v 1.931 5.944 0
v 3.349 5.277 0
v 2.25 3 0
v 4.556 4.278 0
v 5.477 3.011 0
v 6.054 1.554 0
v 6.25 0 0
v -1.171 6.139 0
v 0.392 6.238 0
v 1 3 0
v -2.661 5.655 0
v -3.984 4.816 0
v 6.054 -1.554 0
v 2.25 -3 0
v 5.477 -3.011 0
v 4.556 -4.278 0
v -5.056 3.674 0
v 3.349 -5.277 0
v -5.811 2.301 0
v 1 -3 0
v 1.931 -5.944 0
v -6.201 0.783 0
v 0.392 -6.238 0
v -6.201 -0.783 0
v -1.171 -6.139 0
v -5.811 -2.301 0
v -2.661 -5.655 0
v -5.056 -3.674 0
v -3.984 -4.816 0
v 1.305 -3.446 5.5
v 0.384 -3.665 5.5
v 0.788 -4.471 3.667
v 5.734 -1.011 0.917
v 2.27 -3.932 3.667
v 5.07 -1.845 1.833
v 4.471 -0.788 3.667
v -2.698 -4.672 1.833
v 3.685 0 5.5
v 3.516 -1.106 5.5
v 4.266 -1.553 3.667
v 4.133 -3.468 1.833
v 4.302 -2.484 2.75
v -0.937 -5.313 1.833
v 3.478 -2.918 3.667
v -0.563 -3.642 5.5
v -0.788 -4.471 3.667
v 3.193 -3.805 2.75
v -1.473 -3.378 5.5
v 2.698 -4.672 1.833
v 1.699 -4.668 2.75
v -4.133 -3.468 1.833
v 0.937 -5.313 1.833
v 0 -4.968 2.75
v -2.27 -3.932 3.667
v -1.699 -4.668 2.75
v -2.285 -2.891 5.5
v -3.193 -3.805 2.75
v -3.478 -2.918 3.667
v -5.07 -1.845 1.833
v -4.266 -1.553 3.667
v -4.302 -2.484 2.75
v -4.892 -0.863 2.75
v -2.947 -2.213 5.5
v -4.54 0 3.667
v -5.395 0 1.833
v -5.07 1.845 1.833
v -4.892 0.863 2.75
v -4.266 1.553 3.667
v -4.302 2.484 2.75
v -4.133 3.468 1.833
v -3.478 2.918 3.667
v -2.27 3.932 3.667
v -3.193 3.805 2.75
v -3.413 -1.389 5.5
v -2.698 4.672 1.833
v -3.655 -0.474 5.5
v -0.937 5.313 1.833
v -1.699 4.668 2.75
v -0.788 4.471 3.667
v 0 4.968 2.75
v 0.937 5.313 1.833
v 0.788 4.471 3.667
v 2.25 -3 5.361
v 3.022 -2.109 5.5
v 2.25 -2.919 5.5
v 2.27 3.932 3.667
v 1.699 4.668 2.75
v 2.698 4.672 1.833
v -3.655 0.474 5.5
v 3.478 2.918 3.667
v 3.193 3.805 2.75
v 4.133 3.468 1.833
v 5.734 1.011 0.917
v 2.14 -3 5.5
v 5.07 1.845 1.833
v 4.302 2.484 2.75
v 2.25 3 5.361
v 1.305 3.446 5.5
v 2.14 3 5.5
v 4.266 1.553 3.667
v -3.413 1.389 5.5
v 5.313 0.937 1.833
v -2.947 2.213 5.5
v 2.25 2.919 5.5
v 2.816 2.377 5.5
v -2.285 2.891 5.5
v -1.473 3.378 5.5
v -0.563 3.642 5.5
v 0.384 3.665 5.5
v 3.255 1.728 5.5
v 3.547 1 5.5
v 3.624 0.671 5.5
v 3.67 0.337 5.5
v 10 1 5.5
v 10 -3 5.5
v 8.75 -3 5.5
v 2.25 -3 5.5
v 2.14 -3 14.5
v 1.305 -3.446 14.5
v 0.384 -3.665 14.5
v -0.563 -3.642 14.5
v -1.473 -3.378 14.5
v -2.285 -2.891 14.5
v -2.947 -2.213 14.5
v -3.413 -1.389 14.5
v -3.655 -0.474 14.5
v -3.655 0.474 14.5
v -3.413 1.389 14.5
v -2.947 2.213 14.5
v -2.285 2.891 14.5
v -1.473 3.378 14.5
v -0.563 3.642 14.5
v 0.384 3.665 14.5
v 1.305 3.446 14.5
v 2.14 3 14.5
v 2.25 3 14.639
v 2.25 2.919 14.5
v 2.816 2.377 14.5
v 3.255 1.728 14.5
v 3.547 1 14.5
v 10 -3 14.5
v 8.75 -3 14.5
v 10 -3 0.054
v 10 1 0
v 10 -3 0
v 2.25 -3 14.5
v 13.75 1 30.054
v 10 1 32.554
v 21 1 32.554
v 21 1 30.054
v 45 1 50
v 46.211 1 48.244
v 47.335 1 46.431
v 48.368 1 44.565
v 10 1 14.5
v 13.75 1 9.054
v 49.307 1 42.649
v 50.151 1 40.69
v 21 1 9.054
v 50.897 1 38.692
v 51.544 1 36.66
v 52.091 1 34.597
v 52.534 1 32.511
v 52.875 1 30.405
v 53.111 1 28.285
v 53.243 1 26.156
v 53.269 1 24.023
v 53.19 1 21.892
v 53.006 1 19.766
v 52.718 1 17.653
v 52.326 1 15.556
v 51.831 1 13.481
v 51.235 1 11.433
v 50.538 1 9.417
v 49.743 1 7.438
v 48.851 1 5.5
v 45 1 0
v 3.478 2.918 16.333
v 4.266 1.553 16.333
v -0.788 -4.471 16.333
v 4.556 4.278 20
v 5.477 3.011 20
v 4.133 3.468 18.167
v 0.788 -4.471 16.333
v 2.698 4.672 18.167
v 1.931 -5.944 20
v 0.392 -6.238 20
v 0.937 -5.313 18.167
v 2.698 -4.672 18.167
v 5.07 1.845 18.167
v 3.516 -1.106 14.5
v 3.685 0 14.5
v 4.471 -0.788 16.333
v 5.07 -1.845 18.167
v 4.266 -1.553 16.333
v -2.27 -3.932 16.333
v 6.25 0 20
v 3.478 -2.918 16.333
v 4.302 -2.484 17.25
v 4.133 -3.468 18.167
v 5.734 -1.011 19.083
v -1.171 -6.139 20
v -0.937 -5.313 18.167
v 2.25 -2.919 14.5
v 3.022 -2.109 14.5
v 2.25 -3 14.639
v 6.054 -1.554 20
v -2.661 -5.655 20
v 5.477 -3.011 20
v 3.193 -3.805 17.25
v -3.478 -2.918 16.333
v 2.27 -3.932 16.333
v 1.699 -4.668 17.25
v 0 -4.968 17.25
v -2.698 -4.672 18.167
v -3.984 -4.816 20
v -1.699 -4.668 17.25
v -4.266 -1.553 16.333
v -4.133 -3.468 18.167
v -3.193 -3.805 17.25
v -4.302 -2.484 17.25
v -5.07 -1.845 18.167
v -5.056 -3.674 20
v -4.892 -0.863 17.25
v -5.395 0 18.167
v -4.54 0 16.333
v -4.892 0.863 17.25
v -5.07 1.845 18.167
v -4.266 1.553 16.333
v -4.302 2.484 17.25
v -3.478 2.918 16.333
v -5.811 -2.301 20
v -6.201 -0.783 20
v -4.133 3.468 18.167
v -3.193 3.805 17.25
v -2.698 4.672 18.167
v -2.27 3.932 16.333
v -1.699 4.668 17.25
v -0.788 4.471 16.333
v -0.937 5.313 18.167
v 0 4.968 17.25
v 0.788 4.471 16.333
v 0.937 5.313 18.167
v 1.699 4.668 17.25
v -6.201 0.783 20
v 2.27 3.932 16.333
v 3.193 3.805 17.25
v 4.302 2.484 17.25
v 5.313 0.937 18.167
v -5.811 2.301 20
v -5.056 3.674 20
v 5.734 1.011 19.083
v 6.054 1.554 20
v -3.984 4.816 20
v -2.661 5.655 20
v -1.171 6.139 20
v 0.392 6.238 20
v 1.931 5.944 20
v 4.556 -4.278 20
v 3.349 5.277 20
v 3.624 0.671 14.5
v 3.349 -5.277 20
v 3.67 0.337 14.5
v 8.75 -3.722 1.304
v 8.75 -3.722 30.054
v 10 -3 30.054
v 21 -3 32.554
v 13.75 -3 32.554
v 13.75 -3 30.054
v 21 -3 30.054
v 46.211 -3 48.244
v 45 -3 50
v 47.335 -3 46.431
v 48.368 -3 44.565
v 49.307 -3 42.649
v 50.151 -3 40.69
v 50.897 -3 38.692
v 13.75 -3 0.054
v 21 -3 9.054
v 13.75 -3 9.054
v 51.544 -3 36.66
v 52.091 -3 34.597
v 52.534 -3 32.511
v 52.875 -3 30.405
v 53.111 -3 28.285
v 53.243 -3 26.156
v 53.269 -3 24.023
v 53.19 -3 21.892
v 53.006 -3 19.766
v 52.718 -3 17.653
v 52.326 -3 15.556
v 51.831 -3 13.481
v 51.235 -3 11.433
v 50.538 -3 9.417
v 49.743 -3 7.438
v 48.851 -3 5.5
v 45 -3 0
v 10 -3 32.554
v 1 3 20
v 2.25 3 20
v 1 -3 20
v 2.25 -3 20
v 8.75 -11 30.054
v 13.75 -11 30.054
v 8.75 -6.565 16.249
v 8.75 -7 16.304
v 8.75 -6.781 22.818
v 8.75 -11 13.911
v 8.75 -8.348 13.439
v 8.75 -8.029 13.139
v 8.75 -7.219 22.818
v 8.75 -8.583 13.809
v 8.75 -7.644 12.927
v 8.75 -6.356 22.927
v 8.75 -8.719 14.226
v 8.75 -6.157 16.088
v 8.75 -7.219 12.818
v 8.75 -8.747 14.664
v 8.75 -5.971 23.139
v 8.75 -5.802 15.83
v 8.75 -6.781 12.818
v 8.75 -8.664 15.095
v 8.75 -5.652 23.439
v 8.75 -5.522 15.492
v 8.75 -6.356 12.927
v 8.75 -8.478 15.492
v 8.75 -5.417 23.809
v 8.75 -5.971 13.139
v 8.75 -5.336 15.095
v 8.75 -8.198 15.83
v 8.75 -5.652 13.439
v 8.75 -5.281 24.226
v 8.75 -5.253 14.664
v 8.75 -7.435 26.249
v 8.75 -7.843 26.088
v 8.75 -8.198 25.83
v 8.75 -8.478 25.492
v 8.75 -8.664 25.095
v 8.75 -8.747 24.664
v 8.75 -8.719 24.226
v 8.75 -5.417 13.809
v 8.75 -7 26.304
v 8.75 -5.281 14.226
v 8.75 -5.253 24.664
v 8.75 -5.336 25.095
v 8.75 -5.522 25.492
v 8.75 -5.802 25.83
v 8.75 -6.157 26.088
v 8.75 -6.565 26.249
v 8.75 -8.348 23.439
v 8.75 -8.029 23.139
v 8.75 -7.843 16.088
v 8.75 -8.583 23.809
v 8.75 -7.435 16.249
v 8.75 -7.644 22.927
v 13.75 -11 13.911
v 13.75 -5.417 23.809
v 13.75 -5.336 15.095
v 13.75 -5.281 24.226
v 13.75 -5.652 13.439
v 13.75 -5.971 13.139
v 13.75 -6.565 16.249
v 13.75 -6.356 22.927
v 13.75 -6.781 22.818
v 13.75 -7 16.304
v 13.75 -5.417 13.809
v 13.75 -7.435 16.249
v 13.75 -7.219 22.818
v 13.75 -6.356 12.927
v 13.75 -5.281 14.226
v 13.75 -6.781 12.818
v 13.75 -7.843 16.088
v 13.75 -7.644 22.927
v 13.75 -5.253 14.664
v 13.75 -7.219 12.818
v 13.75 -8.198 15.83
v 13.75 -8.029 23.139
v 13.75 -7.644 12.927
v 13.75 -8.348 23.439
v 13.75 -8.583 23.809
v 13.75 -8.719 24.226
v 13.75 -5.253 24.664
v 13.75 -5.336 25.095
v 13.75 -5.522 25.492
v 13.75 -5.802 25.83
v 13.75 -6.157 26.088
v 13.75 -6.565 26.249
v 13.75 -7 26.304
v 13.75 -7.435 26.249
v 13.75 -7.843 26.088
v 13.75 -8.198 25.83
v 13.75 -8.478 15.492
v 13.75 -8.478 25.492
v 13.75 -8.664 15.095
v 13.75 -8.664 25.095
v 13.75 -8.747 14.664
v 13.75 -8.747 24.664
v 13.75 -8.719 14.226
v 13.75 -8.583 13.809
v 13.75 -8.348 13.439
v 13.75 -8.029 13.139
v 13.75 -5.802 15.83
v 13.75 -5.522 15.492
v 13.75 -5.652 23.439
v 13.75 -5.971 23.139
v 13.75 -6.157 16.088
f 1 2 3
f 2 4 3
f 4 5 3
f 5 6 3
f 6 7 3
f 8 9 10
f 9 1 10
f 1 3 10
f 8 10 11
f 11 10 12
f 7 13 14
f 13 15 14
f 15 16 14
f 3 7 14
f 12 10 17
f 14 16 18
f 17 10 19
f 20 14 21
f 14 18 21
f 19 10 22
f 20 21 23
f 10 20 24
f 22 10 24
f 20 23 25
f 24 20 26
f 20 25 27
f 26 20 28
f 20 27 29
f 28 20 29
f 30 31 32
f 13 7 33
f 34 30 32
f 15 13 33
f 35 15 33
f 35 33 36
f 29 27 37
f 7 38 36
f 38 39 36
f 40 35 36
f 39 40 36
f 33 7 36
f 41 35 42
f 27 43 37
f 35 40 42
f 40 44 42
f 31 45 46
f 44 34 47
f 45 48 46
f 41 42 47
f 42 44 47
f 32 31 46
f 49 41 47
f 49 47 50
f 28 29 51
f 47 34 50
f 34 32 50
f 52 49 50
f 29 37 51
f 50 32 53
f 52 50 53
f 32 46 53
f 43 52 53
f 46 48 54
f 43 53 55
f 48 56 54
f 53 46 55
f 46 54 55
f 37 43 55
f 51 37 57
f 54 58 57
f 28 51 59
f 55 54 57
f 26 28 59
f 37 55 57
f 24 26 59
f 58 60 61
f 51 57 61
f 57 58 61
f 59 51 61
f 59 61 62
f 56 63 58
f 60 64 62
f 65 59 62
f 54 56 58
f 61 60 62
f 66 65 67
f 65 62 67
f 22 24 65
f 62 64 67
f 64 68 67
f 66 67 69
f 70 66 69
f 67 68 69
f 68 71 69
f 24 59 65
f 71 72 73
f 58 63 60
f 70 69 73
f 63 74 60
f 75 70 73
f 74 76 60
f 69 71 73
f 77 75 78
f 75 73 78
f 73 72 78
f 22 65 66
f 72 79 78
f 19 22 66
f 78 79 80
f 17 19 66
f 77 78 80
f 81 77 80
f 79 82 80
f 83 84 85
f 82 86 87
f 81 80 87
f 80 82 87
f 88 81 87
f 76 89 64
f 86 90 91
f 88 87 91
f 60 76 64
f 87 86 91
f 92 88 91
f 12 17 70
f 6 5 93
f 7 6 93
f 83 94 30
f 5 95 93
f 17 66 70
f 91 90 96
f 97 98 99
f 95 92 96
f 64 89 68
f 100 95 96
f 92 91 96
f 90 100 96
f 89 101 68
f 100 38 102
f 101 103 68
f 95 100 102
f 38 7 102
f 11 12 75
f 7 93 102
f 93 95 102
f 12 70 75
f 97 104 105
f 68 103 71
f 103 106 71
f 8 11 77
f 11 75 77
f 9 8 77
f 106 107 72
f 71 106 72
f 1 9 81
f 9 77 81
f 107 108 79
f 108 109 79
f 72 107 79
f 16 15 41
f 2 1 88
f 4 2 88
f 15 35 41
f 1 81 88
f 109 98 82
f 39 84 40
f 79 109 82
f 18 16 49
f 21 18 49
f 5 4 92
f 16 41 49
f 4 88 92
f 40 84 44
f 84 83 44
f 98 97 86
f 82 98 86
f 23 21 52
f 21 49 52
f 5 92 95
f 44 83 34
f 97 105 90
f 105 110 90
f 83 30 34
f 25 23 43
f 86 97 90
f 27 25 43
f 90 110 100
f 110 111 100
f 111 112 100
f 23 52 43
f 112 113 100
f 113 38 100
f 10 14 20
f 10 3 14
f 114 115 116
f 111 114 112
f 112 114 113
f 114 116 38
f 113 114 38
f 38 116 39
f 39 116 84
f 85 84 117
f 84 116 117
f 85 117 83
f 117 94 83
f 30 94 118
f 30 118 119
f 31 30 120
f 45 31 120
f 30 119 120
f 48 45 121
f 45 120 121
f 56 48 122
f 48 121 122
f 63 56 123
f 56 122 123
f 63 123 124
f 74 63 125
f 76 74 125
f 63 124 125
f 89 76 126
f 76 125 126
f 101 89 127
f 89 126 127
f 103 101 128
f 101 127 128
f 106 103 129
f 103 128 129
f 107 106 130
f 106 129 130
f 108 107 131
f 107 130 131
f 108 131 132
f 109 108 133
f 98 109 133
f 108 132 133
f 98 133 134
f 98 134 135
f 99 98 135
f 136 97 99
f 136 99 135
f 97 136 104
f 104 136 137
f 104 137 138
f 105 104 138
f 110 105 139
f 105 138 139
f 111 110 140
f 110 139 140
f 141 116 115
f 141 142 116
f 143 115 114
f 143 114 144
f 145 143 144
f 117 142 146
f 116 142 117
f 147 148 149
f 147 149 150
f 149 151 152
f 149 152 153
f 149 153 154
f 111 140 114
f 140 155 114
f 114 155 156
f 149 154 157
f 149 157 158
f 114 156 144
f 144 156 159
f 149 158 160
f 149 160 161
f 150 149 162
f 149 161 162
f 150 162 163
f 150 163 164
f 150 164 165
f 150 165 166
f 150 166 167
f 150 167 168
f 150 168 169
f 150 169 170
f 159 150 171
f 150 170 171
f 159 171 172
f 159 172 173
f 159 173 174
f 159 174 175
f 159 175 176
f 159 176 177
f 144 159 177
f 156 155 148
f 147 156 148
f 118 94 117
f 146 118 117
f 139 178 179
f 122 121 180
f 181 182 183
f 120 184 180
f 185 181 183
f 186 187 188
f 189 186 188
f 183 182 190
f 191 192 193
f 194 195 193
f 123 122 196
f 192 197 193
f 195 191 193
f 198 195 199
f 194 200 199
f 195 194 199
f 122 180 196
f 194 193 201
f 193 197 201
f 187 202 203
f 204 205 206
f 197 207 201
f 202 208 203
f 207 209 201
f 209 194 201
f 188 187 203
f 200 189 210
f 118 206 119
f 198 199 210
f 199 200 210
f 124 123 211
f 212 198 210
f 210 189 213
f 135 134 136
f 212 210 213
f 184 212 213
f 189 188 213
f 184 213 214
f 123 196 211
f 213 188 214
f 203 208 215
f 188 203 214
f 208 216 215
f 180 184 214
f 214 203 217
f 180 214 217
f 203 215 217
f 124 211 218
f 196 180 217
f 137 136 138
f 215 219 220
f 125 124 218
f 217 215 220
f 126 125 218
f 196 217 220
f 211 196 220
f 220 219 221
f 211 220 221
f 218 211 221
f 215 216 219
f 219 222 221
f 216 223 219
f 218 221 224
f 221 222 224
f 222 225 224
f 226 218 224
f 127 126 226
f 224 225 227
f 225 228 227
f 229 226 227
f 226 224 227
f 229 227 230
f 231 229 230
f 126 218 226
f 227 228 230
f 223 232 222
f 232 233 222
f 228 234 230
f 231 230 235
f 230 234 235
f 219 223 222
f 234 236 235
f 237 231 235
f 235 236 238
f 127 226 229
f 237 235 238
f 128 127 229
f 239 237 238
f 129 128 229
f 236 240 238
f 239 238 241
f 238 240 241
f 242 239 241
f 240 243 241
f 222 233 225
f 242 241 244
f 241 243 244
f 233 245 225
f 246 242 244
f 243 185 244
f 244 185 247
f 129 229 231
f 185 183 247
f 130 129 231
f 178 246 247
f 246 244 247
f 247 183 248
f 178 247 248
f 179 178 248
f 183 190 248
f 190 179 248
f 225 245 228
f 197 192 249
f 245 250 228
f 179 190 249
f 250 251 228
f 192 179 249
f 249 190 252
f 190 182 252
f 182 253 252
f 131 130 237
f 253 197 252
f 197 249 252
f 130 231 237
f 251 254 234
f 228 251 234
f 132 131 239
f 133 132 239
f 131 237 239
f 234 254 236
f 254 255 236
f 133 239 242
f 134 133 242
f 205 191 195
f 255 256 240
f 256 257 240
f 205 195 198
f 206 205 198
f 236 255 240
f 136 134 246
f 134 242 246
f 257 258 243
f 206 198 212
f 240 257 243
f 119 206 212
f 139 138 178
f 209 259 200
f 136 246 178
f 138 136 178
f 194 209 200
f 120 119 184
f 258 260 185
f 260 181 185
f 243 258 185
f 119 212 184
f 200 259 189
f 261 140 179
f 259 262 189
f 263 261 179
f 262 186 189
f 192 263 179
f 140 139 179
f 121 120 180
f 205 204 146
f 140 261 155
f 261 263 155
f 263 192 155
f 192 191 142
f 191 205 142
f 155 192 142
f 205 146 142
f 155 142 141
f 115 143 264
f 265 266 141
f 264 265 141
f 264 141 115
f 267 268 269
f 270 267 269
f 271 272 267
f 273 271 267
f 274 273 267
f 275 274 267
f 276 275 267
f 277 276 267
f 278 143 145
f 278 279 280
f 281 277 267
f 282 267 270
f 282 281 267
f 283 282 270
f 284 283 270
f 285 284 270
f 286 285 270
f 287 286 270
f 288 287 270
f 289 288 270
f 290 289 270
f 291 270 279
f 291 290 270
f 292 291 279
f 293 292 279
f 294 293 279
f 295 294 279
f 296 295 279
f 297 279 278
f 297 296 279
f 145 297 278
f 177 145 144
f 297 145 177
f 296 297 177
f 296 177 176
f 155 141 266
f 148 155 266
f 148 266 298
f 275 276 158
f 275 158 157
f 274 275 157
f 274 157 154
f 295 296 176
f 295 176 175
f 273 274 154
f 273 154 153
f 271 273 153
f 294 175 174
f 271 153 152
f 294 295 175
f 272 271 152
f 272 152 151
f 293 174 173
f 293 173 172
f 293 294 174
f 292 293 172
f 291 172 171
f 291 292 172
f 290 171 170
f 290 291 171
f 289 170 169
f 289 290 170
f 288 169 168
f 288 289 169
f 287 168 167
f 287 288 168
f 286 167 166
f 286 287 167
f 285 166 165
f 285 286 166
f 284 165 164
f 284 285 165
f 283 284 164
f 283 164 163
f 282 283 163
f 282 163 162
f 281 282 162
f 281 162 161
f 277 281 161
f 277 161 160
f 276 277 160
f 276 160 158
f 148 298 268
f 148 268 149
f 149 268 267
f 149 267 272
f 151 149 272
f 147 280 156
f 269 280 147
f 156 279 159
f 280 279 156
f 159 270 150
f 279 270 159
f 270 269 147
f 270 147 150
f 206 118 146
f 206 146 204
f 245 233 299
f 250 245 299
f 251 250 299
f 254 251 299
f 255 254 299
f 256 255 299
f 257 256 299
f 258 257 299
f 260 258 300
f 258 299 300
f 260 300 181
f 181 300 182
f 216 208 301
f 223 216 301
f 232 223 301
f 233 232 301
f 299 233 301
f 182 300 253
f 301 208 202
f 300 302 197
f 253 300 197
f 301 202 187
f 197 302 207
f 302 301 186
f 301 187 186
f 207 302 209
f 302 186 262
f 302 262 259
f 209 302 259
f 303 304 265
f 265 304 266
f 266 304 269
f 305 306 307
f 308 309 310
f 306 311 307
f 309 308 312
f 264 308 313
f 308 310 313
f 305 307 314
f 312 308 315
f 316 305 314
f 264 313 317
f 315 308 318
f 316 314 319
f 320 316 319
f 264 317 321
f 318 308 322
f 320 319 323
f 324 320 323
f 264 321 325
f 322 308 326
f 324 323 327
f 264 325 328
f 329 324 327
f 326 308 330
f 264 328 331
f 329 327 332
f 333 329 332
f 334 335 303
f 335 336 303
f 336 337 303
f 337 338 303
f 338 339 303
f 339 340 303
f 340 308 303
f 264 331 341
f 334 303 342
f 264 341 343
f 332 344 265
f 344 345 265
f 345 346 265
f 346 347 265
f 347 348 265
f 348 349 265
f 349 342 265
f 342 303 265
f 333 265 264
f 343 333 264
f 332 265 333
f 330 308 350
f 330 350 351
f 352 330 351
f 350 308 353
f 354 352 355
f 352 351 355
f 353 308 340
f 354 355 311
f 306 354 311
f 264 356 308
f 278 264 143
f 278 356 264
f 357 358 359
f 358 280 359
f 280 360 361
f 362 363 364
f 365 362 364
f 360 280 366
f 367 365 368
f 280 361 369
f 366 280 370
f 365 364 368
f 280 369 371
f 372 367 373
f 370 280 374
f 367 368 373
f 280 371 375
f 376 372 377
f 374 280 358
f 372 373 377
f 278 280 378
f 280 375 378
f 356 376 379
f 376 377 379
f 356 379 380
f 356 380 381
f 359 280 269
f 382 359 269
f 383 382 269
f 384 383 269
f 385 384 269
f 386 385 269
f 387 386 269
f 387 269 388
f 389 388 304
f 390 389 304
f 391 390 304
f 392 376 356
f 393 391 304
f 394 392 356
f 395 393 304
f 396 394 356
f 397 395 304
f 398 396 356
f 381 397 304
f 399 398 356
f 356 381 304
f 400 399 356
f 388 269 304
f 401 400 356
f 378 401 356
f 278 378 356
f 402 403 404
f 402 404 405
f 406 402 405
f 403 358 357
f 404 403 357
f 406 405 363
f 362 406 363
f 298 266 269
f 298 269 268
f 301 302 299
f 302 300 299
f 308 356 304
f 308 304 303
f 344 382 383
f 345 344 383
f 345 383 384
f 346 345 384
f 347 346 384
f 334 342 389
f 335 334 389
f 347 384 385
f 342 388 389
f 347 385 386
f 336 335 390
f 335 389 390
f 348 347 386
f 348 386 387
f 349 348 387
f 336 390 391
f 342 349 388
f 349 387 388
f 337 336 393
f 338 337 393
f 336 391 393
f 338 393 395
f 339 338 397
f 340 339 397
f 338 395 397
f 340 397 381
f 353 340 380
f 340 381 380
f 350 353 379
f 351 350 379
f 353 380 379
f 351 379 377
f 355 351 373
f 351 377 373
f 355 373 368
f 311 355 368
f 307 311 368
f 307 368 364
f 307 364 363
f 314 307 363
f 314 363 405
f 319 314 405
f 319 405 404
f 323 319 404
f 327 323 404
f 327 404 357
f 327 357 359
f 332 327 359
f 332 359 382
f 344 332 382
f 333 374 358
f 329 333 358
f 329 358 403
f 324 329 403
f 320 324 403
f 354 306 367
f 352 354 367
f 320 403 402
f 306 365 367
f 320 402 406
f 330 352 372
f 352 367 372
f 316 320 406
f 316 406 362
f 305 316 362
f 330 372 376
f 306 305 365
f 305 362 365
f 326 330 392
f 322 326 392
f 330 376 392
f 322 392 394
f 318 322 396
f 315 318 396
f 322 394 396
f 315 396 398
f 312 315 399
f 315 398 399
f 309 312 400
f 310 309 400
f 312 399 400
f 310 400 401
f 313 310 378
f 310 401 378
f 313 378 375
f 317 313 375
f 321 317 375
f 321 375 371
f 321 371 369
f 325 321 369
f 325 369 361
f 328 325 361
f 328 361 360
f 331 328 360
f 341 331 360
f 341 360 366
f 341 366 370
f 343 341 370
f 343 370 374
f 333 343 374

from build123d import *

# Parameters (mm, degrees)
SKETCH001_W     = 1.25
SKETCH001_H     = 6
PAD_DEPTH       = 20
PAD001_DEPTH    = 4
SKETCH003_W     = 7.25
SKETCH003_H     = 21
POCKET_DEPTH    = 5
SKETCH004_W     = 5
SKETCH004_H     = 8
PAD002_DEPTH    = 32.5
SKETCH005_R     = 1.75
SKETCH005_W     = 2.5
SKETCH005_H     = 8
POCKET001_DEPTH = 5
POCKET002_DEPTH = 30.055369


with BuildPart() as part:
    # Sketch → Revolution (revolve)
    with BuildSketch(Plane.XZ):
        Polygon((0, 0), (6.25, 0), (3.685308, 5.5), (3.685308, 14.5), (6.25, 20), (0, 20), align=None)
    revolve(axis=Axis((0, 0, 0), (0, 0, 1)))

    # Sketch001 → Pad (new body)
    with BuildSketch(Plane(origin=(0, 0, 20), x_dir=(-1, 0, 0), z_dir=(0, 0, 1))):
        with Locations((-1.625, 0)):
            Rectangle(SKETCH001_W, SKETCH001_H)
    extrude(amount=-PAD_DEPTH)

    # Sketch002 → Pad001 (new body)
    with BuildSketch(Plane.XZ.offset(3)):
        with BuildLine():
            Line((2.140443, 14.5), (10, 14.5))
            Line((10, 14.5), (10, 32.554369))
            Line((10, 32.554369), (21, 32.554369))
            Line((21, 32.554369), (45, 50))
            ThreePointArc((48.851141, 5.5), (53.111023, 28.285305), (45, 50))
            Line((45, 0), (48.851141, 5.5))
            Line((10, 0), (45, 0))
            Line((10, 5.5), (10, 0))
            Line((10, 5.5), (2.140443, 5.5))
            Line((2.140443, 5.5), (2.140443, 14.5))
        make_face()
    extrude(amount=-PAD001_DEPTH)

    # Sketch003 → Pocket (cut)
    with BuildSketch(Plane.XZ.offset(3)):
        with Locations((17.375, 19.554369)):
            Rectangle(SKETCH003_W, SKETCH003_H)
    extrude(amount=-POCKET_DEPTH, mode=Mode.SUBTRACT)

    # Sketch004 → Pad002 (new body)
    with BuildSketch(Plane(origin=(0, 0, 32.554369), x_dir=(-1, 0, 0), z_dir=(0, 0, 1))):
        with Locations((-11.25, 7)):
            Rectangle(SKETCH004_W, SKETCH004_H)
    extrude(amount=-PAD002_DEPTH)

    # Sketch005 → Pocket001 (cut)
    with BuildSketch(Plane(origin=(13.75, 0, 0), x_dir=(0, 0, 1), z_dir=(1, 0, 0))):
        with Locations((14.554369, 7)):
            Circle(SKETCH005_R)
        with Locations((24.554369, 7)):
            Circle(SKETCH005_R)
        Polygon((0.054369, 11), (13.910775, 11), (0.054369, 3), align=None)
        with Locations((31.304369, 7)):
            Rectangle(SKETCH005_W, SKETCH005_H)
    extrude(amount=-POCKET001_DEPTH, mode=Mode.SUBTRACT)

    # Sketch006 → Pocket002 (cut, through all)
    with BuildSketch(Plane(origin=(0, 0, 30.054369), x_dir=(-1, 0, 0), z_dir=(0, 0, 1))):
        Polygon((-10, 3), (-8.75, 3.721688), (-8.75, 3), align=None)
    extrude(amount=-POCKET002_DEPTH, mode=Mode.SUBTRACT)


solid = part.part
